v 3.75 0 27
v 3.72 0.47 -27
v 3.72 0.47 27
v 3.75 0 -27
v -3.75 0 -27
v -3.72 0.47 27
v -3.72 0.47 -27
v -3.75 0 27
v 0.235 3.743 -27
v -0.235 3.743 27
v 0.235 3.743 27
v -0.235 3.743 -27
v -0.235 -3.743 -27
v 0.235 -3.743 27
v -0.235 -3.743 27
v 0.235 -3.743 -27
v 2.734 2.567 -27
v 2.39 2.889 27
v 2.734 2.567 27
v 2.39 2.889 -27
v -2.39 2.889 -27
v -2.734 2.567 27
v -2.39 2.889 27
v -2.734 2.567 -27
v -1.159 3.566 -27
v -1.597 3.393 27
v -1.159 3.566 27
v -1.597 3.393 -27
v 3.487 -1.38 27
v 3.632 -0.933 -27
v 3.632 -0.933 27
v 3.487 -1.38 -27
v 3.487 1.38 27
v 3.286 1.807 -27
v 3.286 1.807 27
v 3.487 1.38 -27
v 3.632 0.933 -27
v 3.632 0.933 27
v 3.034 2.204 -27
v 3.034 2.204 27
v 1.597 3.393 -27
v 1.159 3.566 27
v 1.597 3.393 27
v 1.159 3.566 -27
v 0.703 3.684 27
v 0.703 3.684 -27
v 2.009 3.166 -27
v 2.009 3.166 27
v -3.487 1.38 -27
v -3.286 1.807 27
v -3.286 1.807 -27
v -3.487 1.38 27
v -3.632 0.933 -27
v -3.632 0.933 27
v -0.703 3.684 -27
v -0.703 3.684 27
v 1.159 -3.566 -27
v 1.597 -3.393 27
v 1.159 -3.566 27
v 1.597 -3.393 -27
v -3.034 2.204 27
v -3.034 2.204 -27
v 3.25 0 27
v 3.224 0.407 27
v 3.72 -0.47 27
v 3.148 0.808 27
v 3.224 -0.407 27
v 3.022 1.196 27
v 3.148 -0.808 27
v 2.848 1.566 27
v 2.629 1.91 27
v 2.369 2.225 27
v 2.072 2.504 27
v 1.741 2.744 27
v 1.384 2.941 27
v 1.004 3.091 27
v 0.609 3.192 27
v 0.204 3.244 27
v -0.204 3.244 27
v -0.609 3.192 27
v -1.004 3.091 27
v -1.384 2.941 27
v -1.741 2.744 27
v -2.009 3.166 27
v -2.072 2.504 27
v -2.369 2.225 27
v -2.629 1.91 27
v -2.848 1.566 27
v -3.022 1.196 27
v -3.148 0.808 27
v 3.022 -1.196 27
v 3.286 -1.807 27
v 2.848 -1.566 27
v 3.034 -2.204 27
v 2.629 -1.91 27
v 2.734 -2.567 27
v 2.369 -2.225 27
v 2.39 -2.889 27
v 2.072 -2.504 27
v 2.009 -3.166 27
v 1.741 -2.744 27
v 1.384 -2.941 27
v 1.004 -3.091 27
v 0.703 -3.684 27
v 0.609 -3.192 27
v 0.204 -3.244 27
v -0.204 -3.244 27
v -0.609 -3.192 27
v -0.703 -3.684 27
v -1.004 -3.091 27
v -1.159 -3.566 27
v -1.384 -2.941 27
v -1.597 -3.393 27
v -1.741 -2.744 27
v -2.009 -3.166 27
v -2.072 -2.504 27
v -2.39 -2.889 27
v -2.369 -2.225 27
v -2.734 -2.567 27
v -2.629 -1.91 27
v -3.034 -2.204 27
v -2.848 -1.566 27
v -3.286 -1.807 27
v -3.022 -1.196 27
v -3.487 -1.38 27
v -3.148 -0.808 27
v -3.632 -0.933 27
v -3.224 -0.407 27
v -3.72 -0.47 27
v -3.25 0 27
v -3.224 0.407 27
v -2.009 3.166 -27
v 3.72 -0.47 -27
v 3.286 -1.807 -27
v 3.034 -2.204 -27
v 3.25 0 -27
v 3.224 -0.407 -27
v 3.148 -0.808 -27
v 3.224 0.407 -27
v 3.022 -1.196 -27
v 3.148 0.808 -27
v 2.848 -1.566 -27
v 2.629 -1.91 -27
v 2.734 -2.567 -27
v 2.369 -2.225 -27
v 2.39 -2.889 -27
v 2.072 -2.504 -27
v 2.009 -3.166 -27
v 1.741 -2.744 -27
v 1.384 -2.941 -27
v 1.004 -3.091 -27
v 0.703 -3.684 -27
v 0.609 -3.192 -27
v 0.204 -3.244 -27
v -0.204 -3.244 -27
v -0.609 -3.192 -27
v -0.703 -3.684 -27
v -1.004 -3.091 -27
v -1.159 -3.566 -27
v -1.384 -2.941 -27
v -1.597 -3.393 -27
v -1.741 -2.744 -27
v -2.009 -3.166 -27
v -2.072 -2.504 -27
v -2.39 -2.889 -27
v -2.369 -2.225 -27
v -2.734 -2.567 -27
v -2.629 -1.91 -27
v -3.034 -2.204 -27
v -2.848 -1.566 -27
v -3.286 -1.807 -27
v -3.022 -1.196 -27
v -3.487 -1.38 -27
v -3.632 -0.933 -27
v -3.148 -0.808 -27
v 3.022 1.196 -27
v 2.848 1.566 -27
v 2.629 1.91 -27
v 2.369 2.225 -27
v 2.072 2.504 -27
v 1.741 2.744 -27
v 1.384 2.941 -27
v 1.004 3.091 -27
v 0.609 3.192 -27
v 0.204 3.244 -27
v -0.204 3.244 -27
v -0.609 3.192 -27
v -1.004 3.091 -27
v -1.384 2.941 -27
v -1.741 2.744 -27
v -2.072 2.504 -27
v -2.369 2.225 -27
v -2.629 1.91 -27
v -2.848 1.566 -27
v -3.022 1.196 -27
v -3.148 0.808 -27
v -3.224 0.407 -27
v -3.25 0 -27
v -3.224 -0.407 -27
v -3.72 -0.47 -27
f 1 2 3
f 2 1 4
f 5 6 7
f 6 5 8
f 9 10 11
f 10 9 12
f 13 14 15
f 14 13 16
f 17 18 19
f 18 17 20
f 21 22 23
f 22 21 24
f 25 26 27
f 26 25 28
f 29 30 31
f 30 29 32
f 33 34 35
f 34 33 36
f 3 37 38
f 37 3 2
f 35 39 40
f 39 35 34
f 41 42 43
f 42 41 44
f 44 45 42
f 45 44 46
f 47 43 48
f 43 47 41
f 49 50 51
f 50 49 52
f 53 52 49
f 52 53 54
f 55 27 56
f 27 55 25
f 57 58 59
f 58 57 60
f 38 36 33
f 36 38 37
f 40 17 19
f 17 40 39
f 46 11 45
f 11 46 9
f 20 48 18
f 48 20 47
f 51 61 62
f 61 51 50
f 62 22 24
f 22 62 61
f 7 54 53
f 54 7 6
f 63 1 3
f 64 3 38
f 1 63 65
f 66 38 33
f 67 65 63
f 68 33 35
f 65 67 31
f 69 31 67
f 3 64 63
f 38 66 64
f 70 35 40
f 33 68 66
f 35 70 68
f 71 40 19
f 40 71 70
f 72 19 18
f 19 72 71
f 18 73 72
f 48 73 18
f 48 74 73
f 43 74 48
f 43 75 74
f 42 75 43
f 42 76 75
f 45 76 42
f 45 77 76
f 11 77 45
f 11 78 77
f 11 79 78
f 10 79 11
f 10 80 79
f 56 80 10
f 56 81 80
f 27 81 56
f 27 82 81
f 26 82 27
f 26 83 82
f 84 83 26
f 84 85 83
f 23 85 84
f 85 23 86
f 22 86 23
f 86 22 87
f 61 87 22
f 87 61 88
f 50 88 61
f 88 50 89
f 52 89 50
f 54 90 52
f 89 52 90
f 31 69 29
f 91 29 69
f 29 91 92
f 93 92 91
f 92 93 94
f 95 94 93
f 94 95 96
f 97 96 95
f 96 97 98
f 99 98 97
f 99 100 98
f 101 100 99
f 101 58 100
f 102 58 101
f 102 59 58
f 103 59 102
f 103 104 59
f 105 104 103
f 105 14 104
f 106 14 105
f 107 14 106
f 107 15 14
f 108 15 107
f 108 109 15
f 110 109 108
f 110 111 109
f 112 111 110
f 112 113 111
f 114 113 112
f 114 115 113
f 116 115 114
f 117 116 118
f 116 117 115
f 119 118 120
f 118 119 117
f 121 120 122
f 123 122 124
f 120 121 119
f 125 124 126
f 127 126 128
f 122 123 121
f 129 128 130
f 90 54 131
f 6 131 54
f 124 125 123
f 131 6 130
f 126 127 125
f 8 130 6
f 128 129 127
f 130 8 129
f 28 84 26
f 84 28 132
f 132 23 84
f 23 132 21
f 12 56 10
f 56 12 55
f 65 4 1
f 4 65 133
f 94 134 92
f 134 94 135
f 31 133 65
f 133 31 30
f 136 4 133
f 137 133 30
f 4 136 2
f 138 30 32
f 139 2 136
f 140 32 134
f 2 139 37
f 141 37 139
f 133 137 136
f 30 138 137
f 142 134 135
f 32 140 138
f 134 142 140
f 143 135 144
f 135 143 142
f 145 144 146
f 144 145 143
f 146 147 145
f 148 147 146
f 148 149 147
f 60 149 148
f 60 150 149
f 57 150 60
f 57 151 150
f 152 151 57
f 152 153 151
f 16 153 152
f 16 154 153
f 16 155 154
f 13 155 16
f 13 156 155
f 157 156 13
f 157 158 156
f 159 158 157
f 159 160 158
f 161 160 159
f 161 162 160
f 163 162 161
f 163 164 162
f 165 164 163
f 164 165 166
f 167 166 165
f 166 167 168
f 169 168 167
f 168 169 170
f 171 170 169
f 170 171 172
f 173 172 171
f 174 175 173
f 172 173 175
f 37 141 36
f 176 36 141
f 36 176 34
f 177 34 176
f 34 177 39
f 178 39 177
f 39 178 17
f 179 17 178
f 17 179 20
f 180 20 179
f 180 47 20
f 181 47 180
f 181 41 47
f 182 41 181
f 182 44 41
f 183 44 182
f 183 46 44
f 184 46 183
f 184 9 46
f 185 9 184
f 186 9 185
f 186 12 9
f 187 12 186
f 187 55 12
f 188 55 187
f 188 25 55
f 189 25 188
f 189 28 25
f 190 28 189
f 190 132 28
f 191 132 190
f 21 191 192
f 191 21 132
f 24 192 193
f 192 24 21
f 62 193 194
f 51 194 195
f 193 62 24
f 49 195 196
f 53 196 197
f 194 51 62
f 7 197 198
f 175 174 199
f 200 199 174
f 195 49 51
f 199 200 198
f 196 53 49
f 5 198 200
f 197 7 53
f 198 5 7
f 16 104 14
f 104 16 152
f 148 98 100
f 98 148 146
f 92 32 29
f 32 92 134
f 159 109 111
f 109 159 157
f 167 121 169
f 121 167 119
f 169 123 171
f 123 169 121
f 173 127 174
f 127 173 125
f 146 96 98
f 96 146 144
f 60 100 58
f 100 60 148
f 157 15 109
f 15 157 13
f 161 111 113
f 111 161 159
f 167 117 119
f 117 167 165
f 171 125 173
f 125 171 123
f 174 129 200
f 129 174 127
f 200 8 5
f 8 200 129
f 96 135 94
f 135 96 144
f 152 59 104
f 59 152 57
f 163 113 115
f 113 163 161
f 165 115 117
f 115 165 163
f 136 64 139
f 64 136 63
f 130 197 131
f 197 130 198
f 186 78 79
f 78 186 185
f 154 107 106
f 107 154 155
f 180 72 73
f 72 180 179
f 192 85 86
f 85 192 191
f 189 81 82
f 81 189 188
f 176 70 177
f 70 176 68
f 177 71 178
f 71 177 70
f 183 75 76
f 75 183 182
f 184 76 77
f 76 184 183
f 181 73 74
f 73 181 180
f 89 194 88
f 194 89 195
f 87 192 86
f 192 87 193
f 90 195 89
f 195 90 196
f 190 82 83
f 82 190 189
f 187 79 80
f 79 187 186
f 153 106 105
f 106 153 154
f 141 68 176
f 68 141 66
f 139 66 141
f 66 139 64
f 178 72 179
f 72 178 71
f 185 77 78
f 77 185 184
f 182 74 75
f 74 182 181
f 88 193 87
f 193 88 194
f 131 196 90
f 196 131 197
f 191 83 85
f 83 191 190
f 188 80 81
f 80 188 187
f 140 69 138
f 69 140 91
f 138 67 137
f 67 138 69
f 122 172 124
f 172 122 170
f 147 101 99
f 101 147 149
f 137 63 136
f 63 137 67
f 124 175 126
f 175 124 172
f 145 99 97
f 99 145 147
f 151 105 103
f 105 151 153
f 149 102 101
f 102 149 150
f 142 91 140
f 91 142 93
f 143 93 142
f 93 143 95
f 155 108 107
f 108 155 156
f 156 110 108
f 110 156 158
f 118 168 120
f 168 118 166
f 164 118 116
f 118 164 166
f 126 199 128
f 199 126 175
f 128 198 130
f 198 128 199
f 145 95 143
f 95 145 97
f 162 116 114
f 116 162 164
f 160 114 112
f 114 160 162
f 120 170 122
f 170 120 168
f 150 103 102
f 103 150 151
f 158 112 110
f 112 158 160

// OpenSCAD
$fn = 50;


difference() {
	union() {
		translate(v = [0, 0, -27.0000000000]) {
			cylinder(h = 54, r = 3.7500000000);
		}
	}
	union() {
		translate(v = [0, 0, -100.0000000000]) {
			cylinder(h = 200, r = 3.2500000000);
		}
	}
}
